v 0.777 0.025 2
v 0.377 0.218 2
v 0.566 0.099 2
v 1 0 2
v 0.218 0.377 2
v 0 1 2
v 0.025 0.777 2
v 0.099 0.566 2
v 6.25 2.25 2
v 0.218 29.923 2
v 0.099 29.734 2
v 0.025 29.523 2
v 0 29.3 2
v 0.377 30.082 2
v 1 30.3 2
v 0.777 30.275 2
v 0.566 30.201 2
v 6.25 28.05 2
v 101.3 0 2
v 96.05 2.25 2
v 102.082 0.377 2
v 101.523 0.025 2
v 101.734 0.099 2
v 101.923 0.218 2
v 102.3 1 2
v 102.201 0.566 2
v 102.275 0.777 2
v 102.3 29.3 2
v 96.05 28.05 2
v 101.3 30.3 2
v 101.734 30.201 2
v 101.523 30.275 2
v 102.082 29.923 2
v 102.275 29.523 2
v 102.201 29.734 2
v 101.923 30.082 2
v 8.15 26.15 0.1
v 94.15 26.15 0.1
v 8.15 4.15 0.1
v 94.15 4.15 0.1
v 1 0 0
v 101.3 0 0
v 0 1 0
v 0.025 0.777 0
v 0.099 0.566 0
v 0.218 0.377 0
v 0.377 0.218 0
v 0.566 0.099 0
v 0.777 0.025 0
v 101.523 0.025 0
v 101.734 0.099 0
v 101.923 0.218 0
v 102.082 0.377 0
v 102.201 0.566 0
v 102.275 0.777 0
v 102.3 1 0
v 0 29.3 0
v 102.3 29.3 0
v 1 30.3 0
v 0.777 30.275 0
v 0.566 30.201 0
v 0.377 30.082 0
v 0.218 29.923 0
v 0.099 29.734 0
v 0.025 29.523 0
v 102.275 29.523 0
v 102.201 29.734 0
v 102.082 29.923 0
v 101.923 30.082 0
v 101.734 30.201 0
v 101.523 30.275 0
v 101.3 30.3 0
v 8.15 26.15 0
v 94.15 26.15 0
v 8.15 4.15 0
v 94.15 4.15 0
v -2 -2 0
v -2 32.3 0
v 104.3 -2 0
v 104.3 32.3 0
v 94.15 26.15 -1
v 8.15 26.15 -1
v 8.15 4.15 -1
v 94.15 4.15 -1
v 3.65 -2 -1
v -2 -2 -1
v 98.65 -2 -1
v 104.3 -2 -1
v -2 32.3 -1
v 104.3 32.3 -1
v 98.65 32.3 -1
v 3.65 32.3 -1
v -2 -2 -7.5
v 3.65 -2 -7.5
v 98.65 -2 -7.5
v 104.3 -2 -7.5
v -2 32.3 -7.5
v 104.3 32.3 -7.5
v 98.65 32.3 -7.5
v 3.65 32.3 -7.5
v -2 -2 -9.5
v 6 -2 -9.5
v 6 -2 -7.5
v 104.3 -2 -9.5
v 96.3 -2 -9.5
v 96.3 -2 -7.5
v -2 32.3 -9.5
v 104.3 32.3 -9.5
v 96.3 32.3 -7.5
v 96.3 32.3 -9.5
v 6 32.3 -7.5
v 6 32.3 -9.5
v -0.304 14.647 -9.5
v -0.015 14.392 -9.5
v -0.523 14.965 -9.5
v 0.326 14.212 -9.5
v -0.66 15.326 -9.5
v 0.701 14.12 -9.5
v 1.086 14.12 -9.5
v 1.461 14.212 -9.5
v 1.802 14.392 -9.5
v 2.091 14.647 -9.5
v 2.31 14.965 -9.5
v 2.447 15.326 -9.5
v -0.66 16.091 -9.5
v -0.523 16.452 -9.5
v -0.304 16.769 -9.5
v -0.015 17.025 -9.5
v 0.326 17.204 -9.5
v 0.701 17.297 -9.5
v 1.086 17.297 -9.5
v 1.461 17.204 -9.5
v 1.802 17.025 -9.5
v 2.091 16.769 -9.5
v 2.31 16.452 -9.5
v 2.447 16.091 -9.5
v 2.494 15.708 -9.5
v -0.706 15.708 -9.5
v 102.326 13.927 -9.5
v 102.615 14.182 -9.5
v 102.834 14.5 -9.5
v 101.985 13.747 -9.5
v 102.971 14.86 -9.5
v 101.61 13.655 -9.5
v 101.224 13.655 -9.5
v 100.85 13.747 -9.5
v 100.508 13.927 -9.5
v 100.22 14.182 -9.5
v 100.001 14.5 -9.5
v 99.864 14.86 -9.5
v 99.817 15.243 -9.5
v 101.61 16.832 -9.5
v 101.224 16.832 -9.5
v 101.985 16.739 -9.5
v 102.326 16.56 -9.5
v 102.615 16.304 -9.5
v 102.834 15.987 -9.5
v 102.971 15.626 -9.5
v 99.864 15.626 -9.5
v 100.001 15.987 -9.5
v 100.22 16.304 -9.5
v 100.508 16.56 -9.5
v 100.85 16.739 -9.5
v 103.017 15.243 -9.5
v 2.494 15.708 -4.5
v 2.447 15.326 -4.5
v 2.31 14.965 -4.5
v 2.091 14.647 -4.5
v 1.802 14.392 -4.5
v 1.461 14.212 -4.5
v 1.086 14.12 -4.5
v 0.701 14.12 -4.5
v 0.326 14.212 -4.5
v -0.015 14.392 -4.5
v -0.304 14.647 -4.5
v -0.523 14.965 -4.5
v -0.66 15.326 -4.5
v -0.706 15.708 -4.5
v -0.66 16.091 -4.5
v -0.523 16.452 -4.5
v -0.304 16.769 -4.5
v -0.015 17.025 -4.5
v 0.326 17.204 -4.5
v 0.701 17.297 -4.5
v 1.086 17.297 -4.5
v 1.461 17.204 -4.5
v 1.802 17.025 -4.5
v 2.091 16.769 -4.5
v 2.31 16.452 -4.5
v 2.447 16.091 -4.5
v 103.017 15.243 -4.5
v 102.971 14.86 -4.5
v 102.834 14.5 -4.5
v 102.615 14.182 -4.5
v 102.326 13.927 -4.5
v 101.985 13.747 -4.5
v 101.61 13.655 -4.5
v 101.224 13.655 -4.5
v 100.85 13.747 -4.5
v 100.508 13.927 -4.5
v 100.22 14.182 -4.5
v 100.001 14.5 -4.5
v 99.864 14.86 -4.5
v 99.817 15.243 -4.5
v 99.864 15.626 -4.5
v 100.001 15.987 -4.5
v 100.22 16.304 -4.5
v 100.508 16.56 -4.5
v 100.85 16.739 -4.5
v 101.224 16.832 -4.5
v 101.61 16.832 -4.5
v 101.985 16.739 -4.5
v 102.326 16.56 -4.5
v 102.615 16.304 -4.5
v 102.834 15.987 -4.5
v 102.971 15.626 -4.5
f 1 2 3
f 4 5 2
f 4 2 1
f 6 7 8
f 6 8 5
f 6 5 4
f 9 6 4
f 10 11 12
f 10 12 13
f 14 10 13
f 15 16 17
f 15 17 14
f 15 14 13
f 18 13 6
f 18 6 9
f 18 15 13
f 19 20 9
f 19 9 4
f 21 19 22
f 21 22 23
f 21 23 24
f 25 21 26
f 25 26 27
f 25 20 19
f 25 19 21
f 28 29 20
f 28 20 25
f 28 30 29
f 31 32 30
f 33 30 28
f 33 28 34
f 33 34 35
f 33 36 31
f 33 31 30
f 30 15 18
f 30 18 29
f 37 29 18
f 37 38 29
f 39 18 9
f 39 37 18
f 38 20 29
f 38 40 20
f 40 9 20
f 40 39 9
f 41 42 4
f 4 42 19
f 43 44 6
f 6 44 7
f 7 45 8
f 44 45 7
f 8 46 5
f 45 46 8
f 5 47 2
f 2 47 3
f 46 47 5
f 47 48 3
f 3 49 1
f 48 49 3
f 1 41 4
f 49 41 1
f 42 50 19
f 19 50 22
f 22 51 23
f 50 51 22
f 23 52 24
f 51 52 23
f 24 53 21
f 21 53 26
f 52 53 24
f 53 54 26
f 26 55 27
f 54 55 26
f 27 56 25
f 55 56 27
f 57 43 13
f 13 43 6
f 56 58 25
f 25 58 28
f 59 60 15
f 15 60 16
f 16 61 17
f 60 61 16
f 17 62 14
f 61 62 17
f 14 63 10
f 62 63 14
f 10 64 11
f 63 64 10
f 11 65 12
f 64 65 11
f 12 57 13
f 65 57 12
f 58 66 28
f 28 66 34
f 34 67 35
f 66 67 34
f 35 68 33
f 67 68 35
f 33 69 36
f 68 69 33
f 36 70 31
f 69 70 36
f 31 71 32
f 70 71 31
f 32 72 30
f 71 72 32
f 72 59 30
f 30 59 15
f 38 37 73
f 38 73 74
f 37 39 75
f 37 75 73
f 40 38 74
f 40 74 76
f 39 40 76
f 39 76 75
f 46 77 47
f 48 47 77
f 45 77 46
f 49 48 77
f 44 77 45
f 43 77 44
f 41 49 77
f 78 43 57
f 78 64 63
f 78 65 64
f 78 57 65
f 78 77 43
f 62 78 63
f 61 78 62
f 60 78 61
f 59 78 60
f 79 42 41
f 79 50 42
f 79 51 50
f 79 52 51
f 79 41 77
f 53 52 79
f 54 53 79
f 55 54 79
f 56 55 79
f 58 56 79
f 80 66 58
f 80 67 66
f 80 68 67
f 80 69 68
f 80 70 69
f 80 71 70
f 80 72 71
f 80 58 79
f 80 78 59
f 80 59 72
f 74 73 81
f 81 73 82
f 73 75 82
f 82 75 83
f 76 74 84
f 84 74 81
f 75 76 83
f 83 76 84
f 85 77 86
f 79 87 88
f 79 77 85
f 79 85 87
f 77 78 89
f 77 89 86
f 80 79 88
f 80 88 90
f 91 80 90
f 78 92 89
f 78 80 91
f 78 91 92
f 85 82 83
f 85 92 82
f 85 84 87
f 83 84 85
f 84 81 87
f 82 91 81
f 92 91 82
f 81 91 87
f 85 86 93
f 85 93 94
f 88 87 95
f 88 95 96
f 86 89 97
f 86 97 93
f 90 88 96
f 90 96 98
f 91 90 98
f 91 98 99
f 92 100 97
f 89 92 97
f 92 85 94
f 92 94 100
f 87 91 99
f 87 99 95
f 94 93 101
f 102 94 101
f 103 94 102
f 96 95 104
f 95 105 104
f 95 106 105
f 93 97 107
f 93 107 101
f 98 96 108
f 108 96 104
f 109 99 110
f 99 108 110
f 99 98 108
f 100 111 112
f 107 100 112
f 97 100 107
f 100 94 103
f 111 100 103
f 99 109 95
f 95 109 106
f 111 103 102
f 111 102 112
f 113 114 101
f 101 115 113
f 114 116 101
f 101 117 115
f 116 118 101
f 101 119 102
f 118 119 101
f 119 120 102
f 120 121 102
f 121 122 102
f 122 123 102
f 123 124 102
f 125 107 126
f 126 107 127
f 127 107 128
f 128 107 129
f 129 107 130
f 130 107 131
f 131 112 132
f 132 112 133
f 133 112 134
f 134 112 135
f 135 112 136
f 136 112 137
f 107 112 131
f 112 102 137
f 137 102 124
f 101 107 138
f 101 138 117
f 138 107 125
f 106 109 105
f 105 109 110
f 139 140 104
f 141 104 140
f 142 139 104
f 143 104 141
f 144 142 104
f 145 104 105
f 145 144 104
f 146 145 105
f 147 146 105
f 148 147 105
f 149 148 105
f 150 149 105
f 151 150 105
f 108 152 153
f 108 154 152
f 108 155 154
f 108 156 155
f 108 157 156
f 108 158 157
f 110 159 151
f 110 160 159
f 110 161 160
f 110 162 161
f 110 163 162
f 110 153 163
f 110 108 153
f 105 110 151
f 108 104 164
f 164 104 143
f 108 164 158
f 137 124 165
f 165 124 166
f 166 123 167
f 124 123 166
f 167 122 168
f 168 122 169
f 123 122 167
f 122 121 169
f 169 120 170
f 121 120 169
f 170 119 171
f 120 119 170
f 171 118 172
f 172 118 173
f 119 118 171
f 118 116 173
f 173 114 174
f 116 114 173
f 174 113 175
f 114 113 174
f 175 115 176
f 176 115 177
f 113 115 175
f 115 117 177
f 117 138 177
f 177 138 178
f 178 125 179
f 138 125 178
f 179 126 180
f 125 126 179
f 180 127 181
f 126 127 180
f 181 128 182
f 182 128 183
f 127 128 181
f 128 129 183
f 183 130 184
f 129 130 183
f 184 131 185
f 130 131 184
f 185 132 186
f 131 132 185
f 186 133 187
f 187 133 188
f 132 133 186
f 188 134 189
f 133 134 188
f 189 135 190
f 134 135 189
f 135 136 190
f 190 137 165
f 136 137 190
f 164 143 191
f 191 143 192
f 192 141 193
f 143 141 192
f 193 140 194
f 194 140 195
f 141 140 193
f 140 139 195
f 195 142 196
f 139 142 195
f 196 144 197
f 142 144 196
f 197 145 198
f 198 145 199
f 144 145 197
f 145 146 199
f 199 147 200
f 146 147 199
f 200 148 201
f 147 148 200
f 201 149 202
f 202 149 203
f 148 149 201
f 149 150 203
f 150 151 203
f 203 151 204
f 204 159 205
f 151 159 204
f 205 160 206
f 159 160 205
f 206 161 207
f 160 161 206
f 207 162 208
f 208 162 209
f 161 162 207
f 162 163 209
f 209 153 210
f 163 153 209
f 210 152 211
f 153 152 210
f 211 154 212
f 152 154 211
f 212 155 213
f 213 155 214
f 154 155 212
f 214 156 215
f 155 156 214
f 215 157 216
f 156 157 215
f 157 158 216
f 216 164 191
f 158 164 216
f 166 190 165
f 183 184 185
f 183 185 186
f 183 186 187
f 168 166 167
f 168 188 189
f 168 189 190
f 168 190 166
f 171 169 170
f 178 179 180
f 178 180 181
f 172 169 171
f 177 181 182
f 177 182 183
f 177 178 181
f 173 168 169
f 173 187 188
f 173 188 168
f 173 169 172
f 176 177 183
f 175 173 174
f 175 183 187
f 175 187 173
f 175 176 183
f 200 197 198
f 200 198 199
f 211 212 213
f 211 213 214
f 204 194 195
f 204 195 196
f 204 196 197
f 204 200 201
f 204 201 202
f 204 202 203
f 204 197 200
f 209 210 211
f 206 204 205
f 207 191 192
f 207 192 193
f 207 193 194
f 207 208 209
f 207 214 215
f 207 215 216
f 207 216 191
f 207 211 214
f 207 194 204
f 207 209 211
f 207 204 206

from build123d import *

# Parameters (mm, degrees)
PAD_DEPTH       = 2
SKETCH001_W     = 86
SKETCH001_H     = 22
POCKET_DEPTH    = 5
SKETCH002_W     = 106.3
SKETCH002_H     = 34.3
SKETCH002_W_2   = 86
SKETCH002_H_2   = 22
PAD001_DEPTH    = 1
CHAMFER_SIZE    = 1.9
SKETCH003_W     = 5.65
SKETCH003_H     = 34.3
PAD002_DEPTH    = 6.5
SKETCH004_W     = 8
SKETCH004_H     = 34.3
PAD003_DEPTH    = 2
SKETCH005_R     = 1.6
POCKET001_DEPTH = 5


with BuildPart() as part:
    # Sketch → Pad (new body)
    with BuildSketch(Plane.XY):
        with BuildLine():
            Line((1, 0), (101.3, 0))
            ThreePointArc((101.3, 0), (102.007107, 0.292893), (102.3, 1))
            Line((102.3, 1), (102.3, 29.3))
            ThreePointArc((102.3, 29.3), (102.007107, 30.007107), (101.3, 30.3))
            Line((101.3, 30.3), (1, 30.3))
            ThreePointArc((1, 30.3), (0.292893, 30.007107), (0, 29.3))
            Line((0, 29.3), (0, 1))
            ThreePointArc((0, 1), (0.292893, 0.292893), (1, 0))
        make_face()
    extrude(amount=PAD_DEPTH)

    # Sketch001 (on Face10 of Pad) → Pocket (cut)
    with BuildSketch(Plane.XY.offset(2)):
        with Locations((51.15, 15.15)):
            Rectangle(SKETCH001_W, SKETCH001_H)
    extrude(amount=-POCKET_DEPTH, mode=Mode.SUBTRACT)

    # Sketch002 (on Face4 of Pocket) → Pad001 (join)
    with BuildSketch(Plane(origin=(0, 0, 0), x_dir=(1, 0, 0), z_dir=(0, 0, -1))):
        with Locations((51.15, -15.15)):
            Rectangle(SKETCH002_W, SKETCH002_H)
        with Locations((51.15, -15.15)):
            Rectangle(SKETCH002_W_2, SKETCH002_H_2, mode=Mode.SUBTRACT)
    extrude(amount=PAD001_DEPTH)

    # Chamfer
    chamfer_edges = [part.edges().sort_by_distance(p)[0] for p in [
        (51.15, 26.15, 2),
        (8.15, 15.15, 2),
        (51.15, 4.15, 2),
        (94.15, 15.15, 2),
    ]]
    chamfer(chamfer_edges, length=CHAMFER_SIZE)

    # Sketch003 (on Face27 of Chamfer) → Pad002 (join)
    with BuildSketch(Plane(origin=(0, 0, -1), x_dir=(1, 0, 0), z_dir=(0, 0, -1))):
        with Locations((101.475, -15.15)):
            Rectangle(SKETCH003_W, SKETCH003_H)
        with Locations((0.825, -15.15)):
            Rectangle(SKETCH003_W, SKETCH003_H)
    extrude(amount=PAD002_DEPTH)

    # Sketch004 (on Face36 of Pad002) → Pad003 (join)
    with BuildSketch(Plane(origin=(0, 0, -7.5), x_dir=(1, 0, 0), z_dir=(0, 0, -1))):
        with Locations((100.3, -15.15)):
            Rectangle(SKETCH004_W, SKETCH004_H)
        with Locations((2, -15.15)):
            Rectangle(SKETCH004_W, SKETCH004_H)
    extrude(amount=PAD003_DEPTH)

    # Sketch005 (on Face45 of Pad003) → Pocket001 (cut)
    with BuildSketch(Plane(origin=(0, 0, -9.5), x_dir=(1, 0, 0), z_dir=(0, 0, -1))):
        with Locations((0.89357, -15.708431)):
            Circle(SKETCH005_R)
        with Locations((101.41729, -15.243322)):
            Circle(SKETCH005_R)
    extrude(amount=-POCKET001_DEPTH, mode=Mode.SUBTRACT)


solid = part.part
